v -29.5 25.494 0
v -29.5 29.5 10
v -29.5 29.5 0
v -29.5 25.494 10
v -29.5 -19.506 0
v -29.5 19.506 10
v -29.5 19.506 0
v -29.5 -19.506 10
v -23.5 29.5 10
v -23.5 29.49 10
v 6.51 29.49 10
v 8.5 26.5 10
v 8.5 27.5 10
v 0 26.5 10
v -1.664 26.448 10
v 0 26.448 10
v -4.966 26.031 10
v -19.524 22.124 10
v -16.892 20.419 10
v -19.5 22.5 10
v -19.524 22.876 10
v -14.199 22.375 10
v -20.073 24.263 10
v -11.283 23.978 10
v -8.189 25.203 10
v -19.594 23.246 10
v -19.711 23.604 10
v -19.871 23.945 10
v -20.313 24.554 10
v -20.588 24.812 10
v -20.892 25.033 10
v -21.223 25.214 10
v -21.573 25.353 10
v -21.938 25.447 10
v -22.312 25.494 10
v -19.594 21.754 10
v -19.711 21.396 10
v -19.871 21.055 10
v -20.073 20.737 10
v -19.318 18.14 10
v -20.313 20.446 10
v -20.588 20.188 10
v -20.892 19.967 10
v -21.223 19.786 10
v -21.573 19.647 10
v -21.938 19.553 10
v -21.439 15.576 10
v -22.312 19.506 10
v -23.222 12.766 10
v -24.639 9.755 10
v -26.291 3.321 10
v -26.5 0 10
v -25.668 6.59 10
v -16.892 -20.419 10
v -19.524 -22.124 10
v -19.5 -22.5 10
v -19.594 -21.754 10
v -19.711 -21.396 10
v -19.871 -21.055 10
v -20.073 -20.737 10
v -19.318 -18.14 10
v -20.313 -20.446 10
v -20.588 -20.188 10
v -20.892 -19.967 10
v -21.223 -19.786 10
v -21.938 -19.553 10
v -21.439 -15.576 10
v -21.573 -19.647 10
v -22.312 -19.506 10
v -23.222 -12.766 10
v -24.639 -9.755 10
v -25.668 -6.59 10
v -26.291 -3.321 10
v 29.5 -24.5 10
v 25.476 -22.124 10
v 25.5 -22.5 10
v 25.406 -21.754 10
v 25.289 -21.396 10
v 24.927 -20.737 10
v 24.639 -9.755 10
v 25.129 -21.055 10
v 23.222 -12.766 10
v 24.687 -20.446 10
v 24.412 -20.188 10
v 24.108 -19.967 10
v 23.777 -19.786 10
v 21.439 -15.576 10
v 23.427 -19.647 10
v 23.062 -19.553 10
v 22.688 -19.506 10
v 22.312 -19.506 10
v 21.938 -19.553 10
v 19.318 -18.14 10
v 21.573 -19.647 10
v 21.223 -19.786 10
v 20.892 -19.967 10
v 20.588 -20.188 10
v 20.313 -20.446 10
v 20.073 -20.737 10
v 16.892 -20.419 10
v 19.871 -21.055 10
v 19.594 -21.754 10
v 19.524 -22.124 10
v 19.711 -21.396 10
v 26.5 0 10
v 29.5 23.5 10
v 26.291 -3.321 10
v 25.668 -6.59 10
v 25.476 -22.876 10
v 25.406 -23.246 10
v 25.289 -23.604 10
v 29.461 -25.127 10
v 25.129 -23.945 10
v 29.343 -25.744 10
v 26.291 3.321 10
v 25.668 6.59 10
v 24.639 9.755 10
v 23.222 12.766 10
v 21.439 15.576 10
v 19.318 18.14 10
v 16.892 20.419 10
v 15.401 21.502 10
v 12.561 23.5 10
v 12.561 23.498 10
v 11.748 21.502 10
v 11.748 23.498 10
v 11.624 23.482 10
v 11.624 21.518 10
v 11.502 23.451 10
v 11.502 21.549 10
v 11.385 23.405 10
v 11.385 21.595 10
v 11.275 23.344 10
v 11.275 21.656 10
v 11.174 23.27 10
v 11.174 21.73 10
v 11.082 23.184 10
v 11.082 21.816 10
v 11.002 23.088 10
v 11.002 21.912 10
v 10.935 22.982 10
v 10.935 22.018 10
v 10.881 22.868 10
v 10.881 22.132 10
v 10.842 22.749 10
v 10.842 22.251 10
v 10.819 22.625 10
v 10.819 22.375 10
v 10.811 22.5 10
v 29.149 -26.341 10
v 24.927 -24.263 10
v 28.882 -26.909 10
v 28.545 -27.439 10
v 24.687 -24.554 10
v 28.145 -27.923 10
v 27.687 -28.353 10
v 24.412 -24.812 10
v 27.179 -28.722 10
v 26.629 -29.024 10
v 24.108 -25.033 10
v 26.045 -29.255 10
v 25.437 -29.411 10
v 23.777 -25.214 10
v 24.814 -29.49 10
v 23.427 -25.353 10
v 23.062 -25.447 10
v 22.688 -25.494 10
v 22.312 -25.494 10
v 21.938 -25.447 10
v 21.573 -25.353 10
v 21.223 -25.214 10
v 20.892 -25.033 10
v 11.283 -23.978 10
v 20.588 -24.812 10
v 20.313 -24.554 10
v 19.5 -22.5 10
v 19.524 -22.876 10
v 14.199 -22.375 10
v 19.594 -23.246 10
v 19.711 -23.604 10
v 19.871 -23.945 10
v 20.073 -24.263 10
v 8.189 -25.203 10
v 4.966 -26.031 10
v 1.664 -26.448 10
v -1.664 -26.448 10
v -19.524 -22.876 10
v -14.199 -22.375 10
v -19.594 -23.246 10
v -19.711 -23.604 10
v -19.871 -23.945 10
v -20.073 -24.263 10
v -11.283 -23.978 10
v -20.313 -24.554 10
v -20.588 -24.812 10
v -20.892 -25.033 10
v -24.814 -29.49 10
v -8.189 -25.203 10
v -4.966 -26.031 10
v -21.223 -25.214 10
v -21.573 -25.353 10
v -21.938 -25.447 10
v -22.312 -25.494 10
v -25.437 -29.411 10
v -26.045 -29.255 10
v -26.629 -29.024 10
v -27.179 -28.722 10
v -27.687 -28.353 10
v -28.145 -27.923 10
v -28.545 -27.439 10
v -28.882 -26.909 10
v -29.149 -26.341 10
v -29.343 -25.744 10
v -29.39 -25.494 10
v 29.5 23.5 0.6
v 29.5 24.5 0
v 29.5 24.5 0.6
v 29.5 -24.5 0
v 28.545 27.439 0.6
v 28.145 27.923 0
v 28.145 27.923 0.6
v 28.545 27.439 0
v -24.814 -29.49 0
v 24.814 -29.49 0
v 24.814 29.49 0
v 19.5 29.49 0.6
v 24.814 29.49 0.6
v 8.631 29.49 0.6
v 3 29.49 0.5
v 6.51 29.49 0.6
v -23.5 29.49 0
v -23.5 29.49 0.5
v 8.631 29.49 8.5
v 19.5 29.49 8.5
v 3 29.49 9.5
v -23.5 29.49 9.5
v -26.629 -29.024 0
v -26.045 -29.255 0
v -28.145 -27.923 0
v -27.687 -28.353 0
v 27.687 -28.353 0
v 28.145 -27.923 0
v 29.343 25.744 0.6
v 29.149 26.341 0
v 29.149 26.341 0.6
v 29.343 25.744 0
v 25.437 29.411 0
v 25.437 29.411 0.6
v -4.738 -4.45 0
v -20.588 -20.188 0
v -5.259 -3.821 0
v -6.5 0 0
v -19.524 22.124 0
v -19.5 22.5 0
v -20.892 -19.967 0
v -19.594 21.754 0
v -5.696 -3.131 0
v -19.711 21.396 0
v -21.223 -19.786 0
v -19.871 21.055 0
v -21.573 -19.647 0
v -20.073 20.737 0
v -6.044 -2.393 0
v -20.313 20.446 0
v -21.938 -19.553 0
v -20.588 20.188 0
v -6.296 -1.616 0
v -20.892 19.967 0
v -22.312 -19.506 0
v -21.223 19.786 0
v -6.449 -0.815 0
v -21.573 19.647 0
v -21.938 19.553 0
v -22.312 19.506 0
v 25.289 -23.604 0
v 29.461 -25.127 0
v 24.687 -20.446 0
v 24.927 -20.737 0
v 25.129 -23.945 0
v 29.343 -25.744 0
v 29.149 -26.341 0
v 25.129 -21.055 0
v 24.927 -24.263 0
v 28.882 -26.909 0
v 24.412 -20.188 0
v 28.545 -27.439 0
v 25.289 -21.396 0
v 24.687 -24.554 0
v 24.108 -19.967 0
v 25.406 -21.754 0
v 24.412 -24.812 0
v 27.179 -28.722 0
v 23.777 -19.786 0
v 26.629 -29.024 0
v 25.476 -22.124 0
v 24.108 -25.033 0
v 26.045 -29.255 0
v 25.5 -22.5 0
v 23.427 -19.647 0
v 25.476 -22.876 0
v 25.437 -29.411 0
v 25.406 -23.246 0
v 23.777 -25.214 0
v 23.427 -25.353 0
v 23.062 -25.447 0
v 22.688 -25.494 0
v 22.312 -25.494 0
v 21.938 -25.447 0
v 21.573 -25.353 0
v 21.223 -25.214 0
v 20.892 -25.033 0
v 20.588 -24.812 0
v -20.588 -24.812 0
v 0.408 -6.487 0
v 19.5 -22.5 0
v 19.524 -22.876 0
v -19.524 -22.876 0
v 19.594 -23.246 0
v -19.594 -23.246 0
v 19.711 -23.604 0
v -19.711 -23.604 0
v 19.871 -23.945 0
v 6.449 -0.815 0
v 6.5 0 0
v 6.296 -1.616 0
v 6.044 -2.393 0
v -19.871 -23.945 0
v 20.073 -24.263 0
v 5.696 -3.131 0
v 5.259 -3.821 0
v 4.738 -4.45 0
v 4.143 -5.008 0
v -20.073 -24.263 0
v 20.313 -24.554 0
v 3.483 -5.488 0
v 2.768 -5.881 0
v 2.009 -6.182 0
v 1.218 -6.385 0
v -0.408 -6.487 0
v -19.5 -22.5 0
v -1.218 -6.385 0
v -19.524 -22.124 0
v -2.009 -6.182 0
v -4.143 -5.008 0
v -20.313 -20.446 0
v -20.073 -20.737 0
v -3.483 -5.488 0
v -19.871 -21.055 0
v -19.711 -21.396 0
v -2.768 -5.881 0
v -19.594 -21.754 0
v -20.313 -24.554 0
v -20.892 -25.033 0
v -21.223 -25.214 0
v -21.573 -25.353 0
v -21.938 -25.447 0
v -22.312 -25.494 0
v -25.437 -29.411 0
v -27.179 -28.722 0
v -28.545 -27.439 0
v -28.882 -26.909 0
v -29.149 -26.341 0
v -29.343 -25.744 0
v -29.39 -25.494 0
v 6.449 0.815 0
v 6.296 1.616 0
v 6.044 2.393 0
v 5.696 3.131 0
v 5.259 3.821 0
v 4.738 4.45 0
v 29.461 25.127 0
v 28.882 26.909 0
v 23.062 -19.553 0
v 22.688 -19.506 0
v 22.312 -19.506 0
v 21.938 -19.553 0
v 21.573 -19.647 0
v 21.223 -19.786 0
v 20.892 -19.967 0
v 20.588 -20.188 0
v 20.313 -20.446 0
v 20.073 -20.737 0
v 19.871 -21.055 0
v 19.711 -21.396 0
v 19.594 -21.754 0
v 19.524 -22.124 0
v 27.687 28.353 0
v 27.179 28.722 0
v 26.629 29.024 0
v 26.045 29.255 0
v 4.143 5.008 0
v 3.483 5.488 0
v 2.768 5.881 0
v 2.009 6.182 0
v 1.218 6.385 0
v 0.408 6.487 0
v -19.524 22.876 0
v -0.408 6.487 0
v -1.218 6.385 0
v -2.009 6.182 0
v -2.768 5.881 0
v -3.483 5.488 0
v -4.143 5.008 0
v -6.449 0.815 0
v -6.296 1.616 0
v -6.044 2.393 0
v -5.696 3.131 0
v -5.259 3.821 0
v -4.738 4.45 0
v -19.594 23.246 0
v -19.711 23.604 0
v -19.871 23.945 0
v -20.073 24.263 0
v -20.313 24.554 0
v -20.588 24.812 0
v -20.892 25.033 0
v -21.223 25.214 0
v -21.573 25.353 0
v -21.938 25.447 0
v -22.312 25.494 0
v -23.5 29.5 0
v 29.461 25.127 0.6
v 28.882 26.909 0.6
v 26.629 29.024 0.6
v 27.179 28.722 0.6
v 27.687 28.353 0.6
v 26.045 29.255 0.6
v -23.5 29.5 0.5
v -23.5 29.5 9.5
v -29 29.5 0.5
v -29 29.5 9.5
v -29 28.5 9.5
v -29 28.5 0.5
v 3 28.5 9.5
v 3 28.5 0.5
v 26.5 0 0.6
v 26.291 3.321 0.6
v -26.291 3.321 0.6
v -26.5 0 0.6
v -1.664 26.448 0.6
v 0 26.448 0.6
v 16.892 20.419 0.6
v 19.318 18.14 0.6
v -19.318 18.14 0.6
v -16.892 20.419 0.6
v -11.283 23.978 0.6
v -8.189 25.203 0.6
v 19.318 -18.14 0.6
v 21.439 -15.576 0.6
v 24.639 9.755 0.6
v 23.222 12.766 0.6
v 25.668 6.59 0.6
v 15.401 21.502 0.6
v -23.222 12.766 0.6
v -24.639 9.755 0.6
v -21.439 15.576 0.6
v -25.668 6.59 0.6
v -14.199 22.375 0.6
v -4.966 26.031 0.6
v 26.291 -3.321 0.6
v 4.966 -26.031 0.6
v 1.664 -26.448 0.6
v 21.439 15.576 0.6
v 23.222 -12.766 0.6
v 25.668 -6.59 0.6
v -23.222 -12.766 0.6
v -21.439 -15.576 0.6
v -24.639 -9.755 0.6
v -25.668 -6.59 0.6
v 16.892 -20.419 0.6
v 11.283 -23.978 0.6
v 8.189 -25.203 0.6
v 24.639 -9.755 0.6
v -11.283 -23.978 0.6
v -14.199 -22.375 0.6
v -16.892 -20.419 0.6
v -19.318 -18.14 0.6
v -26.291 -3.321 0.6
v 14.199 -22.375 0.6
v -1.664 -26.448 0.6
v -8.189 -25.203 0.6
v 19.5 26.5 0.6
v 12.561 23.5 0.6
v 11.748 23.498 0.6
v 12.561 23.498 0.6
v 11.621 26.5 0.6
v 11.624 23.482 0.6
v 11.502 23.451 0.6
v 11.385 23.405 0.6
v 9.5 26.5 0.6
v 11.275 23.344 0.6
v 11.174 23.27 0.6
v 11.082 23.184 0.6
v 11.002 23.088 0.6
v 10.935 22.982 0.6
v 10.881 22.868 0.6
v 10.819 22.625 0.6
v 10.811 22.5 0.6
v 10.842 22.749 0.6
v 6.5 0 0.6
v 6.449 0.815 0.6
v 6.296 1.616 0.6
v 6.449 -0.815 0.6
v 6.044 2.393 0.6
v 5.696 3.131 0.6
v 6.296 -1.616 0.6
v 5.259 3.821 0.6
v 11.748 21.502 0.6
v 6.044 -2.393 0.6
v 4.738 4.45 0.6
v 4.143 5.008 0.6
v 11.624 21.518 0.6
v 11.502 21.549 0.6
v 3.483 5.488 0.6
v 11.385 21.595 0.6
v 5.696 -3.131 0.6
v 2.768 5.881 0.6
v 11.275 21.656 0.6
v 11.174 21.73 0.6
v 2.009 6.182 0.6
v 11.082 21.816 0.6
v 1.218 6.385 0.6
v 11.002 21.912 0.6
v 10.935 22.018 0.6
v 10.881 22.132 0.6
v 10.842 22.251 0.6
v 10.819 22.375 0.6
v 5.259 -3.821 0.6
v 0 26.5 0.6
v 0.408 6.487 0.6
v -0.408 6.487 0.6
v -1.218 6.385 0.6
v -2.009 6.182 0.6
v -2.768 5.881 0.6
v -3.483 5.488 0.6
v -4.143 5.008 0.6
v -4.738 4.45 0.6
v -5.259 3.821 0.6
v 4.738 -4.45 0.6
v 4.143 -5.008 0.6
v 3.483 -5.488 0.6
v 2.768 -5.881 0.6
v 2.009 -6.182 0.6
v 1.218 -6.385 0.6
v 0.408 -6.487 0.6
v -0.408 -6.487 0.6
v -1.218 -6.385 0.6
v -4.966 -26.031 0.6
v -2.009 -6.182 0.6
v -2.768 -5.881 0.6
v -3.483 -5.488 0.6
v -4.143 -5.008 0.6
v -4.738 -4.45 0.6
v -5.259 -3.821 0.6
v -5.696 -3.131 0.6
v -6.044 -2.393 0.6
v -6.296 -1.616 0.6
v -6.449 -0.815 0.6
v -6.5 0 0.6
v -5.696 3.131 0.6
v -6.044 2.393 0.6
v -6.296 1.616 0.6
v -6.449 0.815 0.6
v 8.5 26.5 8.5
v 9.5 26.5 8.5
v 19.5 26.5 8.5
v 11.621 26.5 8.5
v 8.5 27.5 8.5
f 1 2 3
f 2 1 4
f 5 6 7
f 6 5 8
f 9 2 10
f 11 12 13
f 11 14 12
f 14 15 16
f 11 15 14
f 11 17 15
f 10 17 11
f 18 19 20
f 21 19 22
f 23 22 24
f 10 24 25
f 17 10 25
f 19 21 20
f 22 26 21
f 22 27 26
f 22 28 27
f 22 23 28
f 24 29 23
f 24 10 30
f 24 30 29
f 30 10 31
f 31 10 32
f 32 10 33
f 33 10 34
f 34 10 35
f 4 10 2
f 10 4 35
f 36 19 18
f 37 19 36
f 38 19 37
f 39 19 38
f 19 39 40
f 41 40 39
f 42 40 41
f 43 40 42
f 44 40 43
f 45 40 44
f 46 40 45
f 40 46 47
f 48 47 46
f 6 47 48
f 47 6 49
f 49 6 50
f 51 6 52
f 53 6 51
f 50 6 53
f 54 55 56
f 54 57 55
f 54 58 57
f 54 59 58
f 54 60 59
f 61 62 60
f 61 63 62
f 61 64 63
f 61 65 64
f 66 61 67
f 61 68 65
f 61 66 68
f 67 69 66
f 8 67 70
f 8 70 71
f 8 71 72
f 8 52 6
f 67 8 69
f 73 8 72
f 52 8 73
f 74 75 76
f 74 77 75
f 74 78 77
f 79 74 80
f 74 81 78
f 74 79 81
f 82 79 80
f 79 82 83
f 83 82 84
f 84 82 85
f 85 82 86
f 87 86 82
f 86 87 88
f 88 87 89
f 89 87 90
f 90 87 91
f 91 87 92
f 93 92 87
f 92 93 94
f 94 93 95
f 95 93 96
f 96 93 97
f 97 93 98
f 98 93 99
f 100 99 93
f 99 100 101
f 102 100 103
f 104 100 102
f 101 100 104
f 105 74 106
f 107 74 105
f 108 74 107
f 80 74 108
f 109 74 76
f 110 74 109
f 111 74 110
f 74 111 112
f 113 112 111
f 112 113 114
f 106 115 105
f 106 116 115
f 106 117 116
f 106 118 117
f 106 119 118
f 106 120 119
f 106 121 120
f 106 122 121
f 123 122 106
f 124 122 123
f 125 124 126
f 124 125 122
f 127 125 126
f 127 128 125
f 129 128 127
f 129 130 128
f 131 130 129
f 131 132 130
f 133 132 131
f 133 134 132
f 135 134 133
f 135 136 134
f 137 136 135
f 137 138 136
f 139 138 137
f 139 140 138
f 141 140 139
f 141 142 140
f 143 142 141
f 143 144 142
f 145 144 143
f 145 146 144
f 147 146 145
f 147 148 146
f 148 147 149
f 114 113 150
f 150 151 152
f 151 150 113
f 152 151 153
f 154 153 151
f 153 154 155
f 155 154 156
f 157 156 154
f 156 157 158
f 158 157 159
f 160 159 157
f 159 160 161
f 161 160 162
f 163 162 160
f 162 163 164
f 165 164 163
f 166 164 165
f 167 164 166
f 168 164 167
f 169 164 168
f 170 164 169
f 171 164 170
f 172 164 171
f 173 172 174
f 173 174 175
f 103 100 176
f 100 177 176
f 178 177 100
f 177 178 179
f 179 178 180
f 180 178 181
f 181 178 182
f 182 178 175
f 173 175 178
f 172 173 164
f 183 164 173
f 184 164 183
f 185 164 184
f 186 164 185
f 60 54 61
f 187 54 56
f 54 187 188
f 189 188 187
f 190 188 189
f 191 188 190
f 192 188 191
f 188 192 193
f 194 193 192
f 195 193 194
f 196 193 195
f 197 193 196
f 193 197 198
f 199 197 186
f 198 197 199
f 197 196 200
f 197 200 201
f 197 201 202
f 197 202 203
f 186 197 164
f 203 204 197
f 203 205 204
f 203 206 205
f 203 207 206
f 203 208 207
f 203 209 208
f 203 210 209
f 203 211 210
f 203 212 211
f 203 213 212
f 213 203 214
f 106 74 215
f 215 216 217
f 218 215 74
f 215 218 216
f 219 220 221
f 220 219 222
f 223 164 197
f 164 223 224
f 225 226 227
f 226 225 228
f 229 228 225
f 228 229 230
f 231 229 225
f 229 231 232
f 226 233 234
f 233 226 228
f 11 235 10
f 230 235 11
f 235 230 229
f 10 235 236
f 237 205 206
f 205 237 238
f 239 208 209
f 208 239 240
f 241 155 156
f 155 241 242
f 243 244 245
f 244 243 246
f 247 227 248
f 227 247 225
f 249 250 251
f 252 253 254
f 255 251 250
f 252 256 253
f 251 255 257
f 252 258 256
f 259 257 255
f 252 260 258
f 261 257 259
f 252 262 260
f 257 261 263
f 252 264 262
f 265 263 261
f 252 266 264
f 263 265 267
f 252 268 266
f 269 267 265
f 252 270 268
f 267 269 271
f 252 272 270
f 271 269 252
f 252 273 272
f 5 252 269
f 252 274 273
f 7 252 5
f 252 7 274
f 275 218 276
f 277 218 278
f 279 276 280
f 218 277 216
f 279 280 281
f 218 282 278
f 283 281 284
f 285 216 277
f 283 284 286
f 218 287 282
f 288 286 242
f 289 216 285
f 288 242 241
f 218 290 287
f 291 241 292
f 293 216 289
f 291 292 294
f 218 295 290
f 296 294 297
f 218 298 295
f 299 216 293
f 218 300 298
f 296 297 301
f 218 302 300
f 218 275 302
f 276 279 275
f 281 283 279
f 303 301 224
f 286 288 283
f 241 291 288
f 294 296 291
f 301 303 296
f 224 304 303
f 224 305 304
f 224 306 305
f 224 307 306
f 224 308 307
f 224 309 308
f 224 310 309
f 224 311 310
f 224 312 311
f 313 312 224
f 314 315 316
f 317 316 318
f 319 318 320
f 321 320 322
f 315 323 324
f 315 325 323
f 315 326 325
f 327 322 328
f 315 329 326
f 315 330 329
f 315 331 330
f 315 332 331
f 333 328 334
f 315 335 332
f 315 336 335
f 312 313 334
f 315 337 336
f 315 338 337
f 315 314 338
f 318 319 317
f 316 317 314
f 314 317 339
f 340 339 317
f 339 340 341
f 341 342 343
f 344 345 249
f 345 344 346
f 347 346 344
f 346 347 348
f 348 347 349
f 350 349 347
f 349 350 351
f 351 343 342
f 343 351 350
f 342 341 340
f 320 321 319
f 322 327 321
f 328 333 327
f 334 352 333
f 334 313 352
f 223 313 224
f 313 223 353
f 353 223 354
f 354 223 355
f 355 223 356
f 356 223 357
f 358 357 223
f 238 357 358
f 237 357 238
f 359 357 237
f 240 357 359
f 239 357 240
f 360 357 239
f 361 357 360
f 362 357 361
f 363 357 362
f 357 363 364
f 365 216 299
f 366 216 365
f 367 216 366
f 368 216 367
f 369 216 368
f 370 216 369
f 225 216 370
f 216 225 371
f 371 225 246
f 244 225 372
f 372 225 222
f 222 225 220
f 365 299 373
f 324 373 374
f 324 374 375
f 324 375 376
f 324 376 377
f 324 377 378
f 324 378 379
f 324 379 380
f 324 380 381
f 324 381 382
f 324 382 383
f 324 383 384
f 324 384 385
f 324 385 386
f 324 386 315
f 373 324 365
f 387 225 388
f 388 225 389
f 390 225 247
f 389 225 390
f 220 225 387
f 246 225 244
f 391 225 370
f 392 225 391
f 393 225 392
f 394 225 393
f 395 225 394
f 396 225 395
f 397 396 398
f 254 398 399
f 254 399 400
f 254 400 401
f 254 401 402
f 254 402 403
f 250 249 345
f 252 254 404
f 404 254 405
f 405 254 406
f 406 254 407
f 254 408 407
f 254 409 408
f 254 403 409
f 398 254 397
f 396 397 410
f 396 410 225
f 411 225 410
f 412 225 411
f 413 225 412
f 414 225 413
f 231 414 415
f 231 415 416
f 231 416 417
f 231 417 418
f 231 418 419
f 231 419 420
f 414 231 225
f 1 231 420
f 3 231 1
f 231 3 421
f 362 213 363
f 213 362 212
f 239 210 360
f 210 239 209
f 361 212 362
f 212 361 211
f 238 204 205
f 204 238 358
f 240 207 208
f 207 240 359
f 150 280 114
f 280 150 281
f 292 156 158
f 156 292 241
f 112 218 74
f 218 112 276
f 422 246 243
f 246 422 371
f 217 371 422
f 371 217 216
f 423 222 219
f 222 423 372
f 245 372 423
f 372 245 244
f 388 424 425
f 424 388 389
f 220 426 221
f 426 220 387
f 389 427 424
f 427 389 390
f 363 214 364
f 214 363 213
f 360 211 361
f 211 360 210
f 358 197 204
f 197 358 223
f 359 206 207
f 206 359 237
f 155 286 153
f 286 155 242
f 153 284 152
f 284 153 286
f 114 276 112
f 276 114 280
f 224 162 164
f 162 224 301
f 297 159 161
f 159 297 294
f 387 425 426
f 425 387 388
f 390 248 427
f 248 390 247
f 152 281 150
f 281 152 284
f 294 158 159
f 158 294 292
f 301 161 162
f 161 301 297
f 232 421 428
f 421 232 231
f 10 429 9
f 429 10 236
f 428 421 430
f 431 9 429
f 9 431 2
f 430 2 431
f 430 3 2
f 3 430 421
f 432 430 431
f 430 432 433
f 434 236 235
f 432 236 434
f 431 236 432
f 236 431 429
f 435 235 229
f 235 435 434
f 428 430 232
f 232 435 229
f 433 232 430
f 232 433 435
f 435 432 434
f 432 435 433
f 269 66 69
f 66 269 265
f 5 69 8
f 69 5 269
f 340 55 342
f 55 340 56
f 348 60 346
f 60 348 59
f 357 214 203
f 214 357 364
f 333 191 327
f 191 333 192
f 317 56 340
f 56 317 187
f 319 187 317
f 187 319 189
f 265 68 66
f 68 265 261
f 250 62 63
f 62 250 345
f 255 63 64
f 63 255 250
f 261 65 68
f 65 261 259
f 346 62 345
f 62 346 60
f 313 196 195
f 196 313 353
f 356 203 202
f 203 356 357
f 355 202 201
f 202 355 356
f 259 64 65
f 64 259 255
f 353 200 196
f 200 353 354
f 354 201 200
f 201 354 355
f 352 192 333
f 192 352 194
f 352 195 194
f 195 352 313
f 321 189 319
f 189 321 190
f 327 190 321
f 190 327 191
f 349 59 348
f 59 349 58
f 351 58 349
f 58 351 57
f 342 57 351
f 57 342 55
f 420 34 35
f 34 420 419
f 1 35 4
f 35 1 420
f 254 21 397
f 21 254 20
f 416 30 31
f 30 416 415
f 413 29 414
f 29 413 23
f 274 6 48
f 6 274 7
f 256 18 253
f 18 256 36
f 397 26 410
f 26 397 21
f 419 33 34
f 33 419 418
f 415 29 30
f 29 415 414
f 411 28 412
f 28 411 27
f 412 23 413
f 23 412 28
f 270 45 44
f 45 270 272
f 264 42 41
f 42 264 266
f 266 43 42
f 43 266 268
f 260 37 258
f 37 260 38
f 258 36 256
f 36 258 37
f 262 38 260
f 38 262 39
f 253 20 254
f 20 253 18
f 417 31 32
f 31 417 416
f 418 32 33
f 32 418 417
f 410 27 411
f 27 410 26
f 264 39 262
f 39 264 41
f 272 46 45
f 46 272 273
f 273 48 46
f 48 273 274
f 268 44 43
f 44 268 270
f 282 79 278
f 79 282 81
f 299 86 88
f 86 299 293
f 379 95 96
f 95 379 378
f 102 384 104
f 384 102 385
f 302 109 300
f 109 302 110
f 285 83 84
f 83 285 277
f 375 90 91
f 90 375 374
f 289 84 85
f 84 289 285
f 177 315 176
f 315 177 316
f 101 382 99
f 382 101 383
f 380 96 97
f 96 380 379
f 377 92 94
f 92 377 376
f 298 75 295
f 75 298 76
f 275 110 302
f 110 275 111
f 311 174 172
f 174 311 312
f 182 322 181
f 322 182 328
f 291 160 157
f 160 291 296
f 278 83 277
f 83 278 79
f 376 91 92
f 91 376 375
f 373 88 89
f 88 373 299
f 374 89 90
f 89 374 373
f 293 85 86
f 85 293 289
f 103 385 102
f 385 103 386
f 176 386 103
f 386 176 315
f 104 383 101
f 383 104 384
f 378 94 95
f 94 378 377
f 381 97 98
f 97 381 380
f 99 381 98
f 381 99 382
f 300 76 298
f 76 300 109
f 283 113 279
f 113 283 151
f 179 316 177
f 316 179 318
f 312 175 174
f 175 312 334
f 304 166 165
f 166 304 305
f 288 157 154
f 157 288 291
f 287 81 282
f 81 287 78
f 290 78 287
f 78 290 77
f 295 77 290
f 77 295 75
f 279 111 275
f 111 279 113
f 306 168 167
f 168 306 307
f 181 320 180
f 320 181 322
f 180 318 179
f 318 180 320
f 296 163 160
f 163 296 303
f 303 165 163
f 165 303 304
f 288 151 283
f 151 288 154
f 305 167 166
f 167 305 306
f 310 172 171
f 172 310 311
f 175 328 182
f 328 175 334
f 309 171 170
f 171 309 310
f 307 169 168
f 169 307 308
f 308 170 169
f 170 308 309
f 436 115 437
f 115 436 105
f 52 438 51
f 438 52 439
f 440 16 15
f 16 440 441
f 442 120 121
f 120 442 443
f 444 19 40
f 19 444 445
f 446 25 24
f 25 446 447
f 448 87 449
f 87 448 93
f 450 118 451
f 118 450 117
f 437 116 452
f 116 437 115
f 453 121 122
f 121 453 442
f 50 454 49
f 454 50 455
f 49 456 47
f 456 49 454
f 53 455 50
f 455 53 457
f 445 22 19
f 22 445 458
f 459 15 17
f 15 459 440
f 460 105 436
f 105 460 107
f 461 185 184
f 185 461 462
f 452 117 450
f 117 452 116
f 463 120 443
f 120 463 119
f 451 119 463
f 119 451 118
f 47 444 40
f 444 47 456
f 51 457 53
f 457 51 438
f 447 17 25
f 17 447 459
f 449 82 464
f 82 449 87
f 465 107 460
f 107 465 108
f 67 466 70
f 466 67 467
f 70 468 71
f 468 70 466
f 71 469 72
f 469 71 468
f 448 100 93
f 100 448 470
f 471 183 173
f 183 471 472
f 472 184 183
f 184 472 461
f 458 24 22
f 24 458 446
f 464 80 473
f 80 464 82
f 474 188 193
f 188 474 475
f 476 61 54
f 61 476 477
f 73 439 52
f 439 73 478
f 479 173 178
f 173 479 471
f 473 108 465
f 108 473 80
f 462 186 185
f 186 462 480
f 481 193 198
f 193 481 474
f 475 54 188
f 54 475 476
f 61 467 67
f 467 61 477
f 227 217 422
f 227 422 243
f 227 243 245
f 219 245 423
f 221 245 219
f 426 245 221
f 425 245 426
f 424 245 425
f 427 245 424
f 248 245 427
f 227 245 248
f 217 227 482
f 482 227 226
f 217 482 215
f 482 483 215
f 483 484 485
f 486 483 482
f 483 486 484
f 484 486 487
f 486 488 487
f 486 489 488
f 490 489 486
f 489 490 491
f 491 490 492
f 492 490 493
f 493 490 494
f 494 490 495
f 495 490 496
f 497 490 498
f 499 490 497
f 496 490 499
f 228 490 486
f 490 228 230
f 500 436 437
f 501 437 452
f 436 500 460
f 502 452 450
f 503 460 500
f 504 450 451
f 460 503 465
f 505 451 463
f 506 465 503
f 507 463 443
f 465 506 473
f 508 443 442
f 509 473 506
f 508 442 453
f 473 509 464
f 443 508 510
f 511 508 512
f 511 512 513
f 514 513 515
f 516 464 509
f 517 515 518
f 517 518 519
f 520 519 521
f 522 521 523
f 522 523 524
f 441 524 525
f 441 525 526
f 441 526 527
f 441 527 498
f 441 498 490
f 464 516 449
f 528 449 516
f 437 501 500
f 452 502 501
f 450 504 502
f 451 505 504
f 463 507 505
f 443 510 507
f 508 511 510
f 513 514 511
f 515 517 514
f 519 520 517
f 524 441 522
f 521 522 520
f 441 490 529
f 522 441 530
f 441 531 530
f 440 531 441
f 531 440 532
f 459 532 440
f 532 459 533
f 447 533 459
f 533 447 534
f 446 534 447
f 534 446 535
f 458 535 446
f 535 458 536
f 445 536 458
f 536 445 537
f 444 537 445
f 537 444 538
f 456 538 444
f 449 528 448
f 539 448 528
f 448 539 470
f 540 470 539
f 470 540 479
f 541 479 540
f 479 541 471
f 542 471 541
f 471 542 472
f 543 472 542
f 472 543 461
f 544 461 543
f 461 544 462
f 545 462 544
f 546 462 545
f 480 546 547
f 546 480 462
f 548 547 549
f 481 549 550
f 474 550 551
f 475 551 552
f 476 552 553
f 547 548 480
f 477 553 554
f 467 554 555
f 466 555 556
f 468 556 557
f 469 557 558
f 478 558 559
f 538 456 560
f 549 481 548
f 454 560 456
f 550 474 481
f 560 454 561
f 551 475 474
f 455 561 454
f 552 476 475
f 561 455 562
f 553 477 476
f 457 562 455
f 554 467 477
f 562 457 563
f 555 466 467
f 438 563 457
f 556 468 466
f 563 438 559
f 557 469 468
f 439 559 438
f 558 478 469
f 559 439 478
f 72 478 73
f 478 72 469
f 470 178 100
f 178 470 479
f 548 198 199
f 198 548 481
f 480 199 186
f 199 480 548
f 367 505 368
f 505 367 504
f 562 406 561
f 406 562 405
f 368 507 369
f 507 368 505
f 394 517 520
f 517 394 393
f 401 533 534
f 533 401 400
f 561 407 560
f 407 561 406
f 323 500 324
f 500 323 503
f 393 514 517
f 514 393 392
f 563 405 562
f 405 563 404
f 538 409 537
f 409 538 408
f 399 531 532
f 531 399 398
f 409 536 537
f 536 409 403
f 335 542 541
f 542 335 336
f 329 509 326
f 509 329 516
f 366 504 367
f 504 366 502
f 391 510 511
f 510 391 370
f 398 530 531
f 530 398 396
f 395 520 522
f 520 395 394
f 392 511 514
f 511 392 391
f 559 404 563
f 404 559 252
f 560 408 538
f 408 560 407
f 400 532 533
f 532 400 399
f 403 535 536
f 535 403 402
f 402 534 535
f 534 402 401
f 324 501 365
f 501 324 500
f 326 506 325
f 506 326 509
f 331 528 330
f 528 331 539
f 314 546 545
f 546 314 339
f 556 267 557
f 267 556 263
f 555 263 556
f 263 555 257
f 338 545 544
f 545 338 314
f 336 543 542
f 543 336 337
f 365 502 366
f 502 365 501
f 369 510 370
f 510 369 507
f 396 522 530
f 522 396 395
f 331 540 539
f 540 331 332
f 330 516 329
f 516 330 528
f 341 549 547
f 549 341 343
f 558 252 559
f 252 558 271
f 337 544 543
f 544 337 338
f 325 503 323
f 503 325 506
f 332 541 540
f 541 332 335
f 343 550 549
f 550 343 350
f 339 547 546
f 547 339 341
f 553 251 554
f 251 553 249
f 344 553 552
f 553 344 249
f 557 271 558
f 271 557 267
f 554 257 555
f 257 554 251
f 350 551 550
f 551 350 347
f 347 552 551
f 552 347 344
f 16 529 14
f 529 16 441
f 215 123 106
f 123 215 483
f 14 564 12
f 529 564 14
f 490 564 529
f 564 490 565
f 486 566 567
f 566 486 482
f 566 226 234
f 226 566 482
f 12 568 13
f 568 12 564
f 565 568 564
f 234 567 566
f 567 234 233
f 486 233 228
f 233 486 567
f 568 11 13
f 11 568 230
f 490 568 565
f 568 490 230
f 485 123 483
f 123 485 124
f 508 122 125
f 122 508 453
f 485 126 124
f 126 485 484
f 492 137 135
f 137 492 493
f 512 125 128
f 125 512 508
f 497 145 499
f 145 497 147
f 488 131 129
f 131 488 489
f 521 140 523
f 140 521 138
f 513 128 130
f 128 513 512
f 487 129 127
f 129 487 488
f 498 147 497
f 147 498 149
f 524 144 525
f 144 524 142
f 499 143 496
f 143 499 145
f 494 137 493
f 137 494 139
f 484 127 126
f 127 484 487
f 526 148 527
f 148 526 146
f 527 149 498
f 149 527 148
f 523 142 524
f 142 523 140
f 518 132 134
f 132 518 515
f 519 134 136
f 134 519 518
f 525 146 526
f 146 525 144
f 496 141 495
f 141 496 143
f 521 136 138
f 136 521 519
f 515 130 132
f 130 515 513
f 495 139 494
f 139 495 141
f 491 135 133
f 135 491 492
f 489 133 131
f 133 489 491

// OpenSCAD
$fn = 50;


union() {
	difference() {
		union() {
			translate(v = [0, 0, 0]) {
				rotate(a = [0, 0, 0]) {
					hull() {
						translate(v = [-24.5000000000, 24.5000000000, 0]) {
							rotate(a = [0, 0, 0]) {
								translate(v = [0, 0, 0]) {
									rotate(a = [0, 0, 0]) {
										cylinder(h = 10, r = 5);
									}
								}
							}
						}
						translate(v = [24.5000000000, 24.5000000000, 0]) {
							rotate(a = [0, 0, 0]) {
								translate(v = [0, 0, 0]) {
									rotate(a = [0, 0, 0]) {
										cylinder(h = 10, r = 5);
									}
								}
							}
						}
						translate(v = [-24.5000000000, -24.5000000000, 0]) {
							rotate(a = [0, 0, 0]) {
								translate(v = [0, 0, 0]) {
									rotate(a = [0, 0, 0]) {
										cylinder(h = 10, r = 5);
									}
								}
							}
						}
						translate(v = [24.5000000000, -24.5000000000, 0]) {
							rotate(a = [0, 0, 0]) {
								translate(v = [0, 0, 0]) {
									rotate(a = [0, 0, 0]) {
										cylinder(h = 10, r = 5);
									}
								}
							}
						}
					}
				}
			}
			translate(v = [-29.5000000000, 23.5000000000, 0]) {
				rotate(a = [0, 0, 0]) {
					cube(size = [6, 6, 10]);
				}
			}
		}
		union() {
			#translate(v = [-29.0000000000, 28.5000000000, 0.5000000000]) {
				rotate(a = [0, 0, 0]) {
					cube(size = [32, 1, 9.0000000000]);
				}
			}
			translate(v = [-30.0000000000, -22.5000000000, -125]) {
				rotate(a = [0, 0, 0]) {
					hull() {
						translate(v = [7.5000000000, 0, 0]) {
							rotate(a = [0, 0, 0]) {
								translate(v = [0, 0, 0]) {
									rotate(a = [0, 0, 0]) {
										cylinder(h = 250, r = 3.0000000000);
									}
								}
							}
						}
						translate(v = [-7.5000000000, 0, 0]) {
							rotate(a = [0, 0, 0]) {
								translate(v = [0, 0, 0]) {
									rotate(a = [0, 0, 0]) {
										cylinder(h = 250, r = 3.0000000000);
									}
								}
							}
						}
					}
				}
			}
			translate(v = [-30.0000000000, 22.5000000000, -125]) {
				rotate(a = [0, 0, 0]) {
					hull() {
						translate(v = [7.5000000000, 0, 0]) {
							rotate(a = [0, 0, 0]) {
								translate(v = [0, 0, 0]) {
									rotate(a = [0, 0, 0]) {
										cylinder(h = 250, r = 3.0000000000);
									}
								}
							}
						}
						translate(v = [-7.5000000000, 0, 0]) {
							rotate(a = [0, 0, 0]) {
								translate(v = [0, 0, 0]) {
									rotate(a = [0, 0, 0]) {
										cylinder(h = 250, r = 3.0000000000);
									}
								}
							}
						}
					}
				}
			}
			translate(v = [22.5000000000, -22.5000000000, -125.0000000000]) {
				rotate(a = [0, 0, 0]) {
					cylinder(h = 250, r = 3.0000000000);
				}
			}
			translate(v = [0, 0, 0.6000000000]) {
				rotate(a = [0, 0, 0]) {
					cylinder(h = 12.4000000000, r = 26.5000000000);
				}
			}
			translate(v = [0, 0, -5.0000000000]) {
				rotate(a = [0, 0, 0]) {
					cylinder(h = 10, r = 6.5000000000);
				}
			}
			translate(v = [0.0000000000, 23.5000000000, 0.6000000000]) {
				rotate(a = [0, 0, 0]) {
					cube(size = [29.5000000000, 3, 12.4000000000]);
				}
			}
			translate(v = [19.5000000000, 23.5000000000, 0.6000000000]) {
				rotate(a = [0, 0, 0]) {
					cube(size = [10, 6, 12.4000000000]);
				}
			}
			translate(v = [8.5000000000, 23.5000000000, 8.5000000000]) {
				rotate(a = [0, 0, 0]) {
					cube(size = [21, 6, 1.5000000000]);
				}
			}
			translate(v = [5.7500000000, 30.2500000000, 0.6000000000]) {
				rotate(a = [0, 0, -45]) {
					cube(size = [7.5000000000, 1.5000000000, 12.4000000000]);
				}
			}
			translate(v = [5.0610000000, 21.5000000000, 0.6000000000]) {
				rotate(a = [0, 0, 0]) {
					cube(size = [7.5000000000, 2, 9.4000000000]);
				}
			}
		}
	}
	union() {
		translate(v = [14.3110000000, 22.5000000000, 0]) {
			rotate(a = [0, 0, 0]) {
				hull() {
					translate(v = [2.5000000000, 0, 0]) {
						rotate(a = [0, 0, 0]) {
							#translate(v = [0, 0, 0]) {
								rotate(a = [0, 0, 0]) {
									cylinder(h = 10, r = 1.0000000000);
								}
							}
						}
					}
					translate(v = [-2.5000000000, 0, 0]) {
						rotate(a = [0, 0, 0]) {
							#translate(v = [0, 0, 0]) {
								rotate(a = [0, 0, 0]) {
									cylinder(h = 10, r = 1.0000000000);
								}
							}
						}
					}
				}
			}
		}
	}
}
